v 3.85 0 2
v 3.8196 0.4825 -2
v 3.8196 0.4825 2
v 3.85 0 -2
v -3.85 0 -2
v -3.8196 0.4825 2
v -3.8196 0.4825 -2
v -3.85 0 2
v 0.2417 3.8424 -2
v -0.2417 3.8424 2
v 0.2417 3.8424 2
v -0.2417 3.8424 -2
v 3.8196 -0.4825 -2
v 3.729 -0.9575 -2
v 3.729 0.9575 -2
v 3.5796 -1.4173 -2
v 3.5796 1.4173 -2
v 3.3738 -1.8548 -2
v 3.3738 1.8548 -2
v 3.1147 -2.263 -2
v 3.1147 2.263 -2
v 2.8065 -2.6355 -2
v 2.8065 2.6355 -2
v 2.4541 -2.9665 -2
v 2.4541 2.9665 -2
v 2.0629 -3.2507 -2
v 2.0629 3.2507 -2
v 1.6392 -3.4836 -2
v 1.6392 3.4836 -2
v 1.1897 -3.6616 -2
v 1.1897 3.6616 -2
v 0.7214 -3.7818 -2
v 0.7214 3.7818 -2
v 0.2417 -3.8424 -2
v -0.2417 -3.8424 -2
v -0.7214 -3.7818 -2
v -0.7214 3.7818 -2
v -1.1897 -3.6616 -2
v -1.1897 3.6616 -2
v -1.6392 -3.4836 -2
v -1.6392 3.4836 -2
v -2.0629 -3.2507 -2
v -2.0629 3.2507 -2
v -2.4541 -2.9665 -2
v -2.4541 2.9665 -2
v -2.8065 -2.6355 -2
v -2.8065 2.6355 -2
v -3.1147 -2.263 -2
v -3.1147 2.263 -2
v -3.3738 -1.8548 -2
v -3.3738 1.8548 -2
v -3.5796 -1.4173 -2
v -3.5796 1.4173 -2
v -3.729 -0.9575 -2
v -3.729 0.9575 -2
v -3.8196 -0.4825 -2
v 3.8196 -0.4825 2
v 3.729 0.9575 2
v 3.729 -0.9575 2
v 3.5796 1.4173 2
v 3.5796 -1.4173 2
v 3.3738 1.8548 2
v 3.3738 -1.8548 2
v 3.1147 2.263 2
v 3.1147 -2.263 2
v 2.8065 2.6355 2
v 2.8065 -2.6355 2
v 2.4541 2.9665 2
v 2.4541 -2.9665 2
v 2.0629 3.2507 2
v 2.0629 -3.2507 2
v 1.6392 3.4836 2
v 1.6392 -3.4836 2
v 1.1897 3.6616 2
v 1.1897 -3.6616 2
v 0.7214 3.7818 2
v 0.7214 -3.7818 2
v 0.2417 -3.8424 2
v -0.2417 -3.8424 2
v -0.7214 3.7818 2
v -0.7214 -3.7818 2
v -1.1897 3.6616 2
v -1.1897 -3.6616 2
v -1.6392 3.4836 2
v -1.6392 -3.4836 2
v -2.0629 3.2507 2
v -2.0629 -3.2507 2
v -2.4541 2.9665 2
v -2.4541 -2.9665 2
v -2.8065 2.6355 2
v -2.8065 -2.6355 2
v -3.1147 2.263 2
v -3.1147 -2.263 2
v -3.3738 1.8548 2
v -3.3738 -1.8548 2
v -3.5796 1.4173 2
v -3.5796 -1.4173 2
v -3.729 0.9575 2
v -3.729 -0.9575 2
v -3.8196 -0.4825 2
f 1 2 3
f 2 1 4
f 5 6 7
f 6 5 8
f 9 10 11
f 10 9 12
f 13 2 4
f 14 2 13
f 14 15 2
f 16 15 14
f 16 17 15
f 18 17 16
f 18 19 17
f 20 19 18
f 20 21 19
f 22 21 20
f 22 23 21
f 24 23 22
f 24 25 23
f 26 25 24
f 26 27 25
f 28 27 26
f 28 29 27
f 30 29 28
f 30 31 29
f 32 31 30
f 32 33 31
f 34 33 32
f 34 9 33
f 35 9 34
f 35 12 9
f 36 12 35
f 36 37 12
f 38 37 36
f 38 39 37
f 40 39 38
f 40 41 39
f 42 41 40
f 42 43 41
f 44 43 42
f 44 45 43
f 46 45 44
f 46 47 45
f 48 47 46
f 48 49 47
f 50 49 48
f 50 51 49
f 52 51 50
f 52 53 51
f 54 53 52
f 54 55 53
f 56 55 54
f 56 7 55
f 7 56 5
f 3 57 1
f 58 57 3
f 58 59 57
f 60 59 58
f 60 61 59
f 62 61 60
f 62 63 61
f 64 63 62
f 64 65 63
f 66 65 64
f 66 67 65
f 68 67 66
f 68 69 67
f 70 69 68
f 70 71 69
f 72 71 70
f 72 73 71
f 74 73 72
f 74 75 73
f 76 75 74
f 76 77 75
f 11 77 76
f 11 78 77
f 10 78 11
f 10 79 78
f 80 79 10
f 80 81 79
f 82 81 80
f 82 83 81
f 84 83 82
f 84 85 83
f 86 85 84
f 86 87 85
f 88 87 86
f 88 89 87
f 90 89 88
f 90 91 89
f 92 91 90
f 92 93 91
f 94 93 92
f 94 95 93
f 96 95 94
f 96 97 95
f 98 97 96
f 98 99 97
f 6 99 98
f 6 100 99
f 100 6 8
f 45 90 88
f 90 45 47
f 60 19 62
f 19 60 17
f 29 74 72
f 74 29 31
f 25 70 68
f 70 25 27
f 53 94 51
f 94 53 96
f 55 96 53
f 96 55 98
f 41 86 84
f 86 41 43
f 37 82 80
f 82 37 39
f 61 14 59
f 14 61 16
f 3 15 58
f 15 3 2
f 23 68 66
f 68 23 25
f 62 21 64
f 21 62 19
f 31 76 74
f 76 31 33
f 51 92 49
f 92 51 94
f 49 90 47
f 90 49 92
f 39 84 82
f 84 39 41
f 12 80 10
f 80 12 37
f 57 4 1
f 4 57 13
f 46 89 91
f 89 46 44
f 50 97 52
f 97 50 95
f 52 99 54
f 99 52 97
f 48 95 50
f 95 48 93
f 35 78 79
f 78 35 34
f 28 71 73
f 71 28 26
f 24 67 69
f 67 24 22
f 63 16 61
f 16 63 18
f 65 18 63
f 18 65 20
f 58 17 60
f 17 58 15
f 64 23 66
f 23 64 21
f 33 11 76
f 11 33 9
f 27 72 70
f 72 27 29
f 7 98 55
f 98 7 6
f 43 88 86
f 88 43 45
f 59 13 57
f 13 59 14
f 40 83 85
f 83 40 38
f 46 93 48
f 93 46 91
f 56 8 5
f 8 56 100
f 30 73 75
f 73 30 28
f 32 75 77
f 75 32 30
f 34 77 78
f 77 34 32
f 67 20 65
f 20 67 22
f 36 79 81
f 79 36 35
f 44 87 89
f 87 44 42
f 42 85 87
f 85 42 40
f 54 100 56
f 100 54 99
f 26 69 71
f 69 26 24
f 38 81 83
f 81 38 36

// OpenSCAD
$fn = 50;


difference() {
	union() {
		translate(v = [0, 0, -2.0000000000]) {
			cylinder(h = 4, r = 3.8500000000);
		}
	}
	union() {
		translate(v = [0, 0, -100.0000000000]) {
			cylinder(h = 200, r = 0);
		}
	}
}
